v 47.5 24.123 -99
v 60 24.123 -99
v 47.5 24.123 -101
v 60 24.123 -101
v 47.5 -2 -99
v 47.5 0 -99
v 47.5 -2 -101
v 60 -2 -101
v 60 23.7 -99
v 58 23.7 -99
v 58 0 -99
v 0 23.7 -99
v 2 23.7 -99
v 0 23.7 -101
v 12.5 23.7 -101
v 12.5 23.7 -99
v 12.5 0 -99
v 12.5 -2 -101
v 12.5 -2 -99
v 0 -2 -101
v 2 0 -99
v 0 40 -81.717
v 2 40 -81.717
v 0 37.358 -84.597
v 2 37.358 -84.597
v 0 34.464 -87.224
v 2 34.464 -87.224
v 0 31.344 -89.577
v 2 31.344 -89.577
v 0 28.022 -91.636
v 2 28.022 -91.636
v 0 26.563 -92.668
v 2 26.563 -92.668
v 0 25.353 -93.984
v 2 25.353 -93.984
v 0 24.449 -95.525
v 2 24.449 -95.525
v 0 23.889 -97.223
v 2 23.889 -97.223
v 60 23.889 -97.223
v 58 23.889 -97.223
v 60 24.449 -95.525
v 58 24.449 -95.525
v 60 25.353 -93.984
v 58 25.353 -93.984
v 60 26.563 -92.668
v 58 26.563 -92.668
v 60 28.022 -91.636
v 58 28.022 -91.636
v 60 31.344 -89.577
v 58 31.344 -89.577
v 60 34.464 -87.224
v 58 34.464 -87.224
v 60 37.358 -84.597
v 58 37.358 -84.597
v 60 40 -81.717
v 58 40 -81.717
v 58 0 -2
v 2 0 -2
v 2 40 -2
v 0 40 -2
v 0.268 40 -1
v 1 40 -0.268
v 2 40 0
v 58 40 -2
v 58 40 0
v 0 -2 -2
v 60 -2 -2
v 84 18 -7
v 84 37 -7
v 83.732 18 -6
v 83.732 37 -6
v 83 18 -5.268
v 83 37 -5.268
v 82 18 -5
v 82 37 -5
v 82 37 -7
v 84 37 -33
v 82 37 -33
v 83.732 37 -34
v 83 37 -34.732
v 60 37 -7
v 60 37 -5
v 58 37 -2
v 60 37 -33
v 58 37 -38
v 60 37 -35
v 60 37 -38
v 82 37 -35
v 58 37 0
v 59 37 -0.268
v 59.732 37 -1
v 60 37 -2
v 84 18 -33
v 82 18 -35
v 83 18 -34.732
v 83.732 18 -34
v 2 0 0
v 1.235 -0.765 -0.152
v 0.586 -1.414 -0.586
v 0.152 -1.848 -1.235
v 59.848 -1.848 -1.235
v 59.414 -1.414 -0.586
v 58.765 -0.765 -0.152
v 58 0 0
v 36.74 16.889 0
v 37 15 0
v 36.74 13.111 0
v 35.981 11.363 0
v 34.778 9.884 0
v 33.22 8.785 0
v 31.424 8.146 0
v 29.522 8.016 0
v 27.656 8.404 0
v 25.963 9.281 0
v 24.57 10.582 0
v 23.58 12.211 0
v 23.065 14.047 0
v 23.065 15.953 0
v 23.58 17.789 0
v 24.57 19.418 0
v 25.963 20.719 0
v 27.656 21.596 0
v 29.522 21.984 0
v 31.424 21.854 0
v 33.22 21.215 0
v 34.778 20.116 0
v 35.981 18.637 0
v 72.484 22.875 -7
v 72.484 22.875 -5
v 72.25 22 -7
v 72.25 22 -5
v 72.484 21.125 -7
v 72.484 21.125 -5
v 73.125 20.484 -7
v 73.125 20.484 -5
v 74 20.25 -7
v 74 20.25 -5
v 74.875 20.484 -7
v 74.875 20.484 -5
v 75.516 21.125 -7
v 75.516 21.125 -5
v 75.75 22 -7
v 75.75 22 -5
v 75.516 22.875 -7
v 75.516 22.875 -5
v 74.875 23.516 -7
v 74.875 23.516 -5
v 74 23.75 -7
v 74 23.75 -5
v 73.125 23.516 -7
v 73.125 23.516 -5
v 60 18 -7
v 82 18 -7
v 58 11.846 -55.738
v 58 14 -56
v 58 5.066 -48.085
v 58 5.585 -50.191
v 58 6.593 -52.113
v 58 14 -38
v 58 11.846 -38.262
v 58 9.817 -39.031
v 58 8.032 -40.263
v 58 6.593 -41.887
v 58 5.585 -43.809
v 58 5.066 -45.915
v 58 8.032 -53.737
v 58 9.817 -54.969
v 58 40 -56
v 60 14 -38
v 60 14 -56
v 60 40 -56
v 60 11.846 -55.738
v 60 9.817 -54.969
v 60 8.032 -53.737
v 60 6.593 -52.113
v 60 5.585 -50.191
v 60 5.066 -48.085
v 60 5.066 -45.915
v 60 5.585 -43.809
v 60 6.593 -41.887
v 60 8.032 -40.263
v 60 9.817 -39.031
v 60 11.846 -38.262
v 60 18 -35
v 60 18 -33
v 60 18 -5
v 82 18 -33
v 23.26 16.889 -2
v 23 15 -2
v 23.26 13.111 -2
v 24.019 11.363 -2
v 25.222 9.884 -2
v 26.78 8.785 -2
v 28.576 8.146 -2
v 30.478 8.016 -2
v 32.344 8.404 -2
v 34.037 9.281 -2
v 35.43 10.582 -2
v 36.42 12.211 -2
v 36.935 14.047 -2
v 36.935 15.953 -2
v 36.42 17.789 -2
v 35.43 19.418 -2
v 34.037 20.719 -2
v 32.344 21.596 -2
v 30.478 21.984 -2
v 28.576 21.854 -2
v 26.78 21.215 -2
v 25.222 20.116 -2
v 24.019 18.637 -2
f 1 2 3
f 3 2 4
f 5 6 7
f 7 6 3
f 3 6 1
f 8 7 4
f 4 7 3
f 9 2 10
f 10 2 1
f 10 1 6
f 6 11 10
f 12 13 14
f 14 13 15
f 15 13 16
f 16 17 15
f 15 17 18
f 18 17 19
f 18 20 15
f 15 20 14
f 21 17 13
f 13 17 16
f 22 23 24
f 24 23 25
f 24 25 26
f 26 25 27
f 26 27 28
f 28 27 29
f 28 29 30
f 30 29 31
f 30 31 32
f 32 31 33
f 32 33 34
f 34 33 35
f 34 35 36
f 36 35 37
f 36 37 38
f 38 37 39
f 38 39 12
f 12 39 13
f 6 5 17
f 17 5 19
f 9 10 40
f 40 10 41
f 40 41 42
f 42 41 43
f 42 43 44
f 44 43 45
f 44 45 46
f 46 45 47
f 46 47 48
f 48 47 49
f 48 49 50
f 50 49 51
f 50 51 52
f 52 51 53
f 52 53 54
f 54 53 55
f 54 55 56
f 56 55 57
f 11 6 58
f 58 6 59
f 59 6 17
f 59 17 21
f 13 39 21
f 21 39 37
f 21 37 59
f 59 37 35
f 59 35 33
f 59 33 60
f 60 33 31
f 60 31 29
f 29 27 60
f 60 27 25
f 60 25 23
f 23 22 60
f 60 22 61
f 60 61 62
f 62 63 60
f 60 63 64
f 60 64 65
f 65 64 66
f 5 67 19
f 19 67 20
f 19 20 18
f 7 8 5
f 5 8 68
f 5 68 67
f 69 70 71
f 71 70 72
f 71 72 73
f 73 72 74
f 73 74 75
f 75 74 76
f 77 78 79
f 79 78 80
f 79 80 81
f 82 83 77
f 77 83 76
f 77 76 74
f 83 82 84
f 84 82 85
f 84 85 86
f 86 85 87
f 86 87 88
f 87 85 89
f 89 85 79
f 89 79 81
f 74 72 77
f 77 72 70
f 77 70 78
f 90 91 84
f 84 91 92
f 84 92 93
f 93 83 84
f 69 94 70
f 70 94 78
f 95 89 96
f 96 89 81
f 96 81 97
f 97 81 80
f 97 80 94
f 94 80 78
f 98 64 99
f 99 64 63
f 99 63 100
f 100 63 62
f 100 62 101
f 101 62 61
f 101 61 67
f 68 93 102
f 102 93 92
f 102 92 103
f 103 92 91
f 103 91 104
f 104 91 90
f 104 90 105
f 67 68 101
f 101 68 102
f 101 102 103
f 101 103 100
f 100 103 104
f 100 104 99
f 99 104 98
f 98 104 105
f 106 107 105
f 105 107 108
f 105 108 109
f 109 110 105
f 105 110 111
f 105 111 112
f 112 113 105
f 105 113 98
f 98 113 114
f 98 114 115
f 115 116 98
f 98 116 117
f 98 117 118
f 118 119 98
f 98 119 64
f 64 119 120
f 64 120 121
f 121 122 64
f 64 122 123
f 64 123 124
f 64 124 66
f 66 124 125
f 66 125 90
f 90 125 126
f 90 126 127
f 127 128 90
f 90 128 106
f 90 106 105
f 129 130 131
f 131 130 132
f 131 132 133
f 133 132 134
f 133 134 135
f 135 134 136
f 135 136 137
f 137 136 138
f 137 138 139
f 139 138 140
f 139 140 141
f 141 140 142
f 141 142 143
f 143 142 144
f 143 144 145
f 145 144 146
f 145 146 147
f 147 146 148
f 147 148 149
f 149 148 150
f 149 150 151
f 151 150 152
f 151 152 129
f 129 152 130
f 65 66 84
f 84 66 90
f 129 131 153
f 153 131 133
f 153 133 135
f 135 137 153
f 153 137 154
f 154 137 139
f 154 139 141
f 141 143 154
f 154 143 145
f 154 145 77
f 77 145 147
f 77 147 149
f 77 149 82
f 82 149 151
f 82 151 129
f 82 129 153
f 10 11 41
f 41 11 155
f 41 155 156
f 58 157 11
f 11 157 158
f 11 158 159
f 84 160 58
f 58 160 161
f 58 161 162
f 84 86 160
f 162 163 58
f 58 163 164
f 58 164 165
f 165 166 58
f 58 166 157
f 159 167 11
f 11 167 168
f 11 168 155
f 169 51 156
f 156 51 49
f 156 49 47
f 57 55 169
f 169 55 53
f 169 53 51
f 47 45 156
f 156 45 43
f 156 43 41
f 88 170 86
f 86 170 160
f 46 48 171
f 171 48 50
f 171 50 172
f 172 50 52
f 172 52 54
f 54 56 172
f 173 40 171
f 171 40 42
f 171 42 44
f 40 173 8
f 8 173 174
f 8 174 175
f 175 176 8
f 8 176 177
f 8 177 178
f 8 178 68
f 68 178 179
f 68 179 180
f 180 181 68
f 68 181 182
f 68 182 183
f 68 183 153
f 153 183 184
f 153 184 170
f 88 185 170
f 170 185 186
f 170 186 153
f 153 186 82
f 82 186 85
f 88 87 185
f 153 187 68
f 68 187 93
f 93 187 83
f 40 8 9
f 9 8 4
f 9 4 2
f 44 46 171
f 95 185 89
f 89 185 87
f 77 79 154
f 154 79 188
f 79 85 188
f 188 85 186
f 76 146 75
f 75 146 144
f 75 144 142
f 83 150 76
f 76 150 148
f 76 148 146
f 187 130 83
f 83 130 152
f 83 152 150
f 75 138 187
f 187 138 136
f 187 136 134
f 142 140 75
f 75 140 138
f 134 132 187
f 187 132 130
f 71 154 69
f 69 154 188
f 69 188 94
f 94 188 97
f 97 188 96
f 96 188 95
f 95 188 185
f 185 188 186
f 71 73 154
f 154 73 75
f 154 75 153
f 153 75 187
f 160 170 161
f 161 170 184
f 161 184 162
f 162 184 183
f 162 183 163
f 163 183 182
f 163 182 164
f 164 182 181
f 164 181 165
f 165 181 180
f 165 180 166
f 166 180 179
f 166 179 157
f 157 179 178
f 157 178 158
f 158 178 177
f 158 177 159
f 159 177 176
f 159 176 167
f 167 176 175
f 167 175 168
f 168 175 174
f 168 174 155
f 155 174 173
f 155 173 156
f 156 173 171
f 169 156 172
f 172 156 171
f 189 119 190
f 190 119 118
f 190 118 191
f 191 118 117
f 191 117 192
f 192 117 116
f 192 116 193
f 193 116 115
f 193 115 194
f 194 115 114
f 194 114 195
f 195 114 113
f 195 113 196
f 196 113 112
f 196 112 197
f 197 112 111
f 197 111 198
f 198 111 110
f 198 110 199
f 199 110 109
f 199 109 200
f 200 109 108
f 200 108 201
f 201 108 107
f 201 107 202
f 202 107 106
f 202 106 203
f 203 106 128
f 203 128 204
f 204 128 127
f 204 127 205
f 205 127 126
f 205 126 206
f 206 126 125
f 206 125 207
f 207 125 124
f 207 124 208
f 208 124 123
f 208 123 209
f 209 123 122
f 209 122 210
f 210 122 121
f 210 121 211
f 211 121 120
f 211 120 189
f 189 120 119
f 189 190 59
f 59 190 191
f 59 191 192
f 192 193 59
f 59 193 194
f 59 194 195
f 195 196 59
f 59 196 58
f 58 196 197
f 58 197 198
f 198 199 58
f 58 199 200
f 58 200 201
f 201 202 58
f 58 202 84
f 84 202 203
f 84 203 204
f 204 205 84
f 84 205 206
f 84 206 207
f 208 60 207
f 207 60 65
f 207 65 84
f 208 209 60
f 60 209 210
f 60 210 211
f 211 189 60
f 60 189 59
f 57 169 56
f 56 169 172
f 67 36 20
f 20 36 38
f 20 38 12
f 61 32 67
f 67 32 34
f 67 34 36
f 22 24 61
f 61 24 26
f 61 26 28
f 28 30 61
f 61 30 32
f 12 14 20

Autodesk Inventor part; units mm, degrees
ref_plane "YZ Plane" through (0, 0, 0) normal (1, 0, 0) x (0, 1, 0)
ref_plane "XZ Plane" through (0, 0, 0) normal (0, 1, 0) x (-1, 0, 0)
sketch "Sketch1" plane through (0, 0, 0) normal (0, 1, 0) x (-1, 0, 0)
  line L0 (-60, -124) -> (0, -124)
  line L1 (0, -124) -> (0, 0)
  line L2 (-58, -33) -> (-58, -122)
  line L3 (-58, -122) -> (-40, -122)
  line L4 (-40, -122) -> (-40, -124)
  line L5 (-2, -2) -> (-2, -122)
  line L6 (-2, -122) -> (-20, -122)
  line L7 (-20, -122) -> (-20, -124)
  line L8 (-60, -35) -> (-60, -124)
  line L9 (-30, -124) -> (-30, 0) construction
  line L10 (-60, -124) -> (-60, 0)
  line L11 (-58, -124) -> (-58, -2)
  line L12 (-2, -2) -> (-58, -2)
  line L13 (-60, 0) -> (0, 0)
  line L14 (-84, -5) -> (-84, -35)
  line L15 (-84, -35) -> (-58, -35)
  line L16 (-58, -35) -> (-58, 0)
  line L17 (-82, -7) -> (-82, -33)
  line L18 (-82, -33) -> (-58, -33)
  line L19 (-58, -33) -> (-58, -2)
  line L20 (-82, -7) -> (-60, -7)
  line L21 (-84, -5) -> (-60, -5)
  point P0 (-57.4156, -121.9986)
  point P1 (-58, -122)
  point P2 (-60, -35)
  point P3 (-58, -38)
  point P4 (-58, -33)
  point P5 (-60, -33)
  point P6 (-60, -35)
  point P7 (-58, -33)
  point P8 (-58, -35)
  point P9 (-58, -35)
  dimension "d0" = 60
  dimension "d5" = 2
  dimension "d6" = 20
  dimension "d38" = 2
  dimension "d39" = 60
  dimension "d46" = 2
  dimension "d47" = 2
  dimension "d48" = 2
  dimension "d50" = 30
  dimension "d51" = 2
  dimension "d64" = 2
  dimension "d66" = 26
extrude "Extrusion1" add sketch "Sketch1" against normal blind 2 contours L8 L15 L2 L11 L0 | L11 L3 L4 L0 | L10 L18 L2 L15 | L4 L3 L2 L11 L12 L5 L6 L7 L0 | L10 L13 L16 L11 L18 | L7 L6 L5 L12 L16 L13 L1 L0
extrude "Extrusion2" add sketch "Sketch1" along normal blind 40 contours L8 L15 L2 L11 L0 | L11 L3 L4 L0 | L10 L18 L2 L15 | L10 L13 L16 L11 L18 | L7 L6 L5 L12 L16 L13 L1 L0
sketch "Sketch2" plane through (0, -2, 0) normal (0, 0, 1) x (1, 0, 0)
  circle A0 centre (30, 17) radius 7
  line L0 (0, 42) -> (60, 42)
  line L1 (60, 0) -> (60, 42) projected
  point P0 (0, 2)
  point P1 (0, 42)
  point P2 (30, 42)
  dimension "d11" = 25
  dimension "d12" = 14
  dimension "d65" = 30
extrude "Extrusion3" cut sketch "Sketch2" against normal up to next
sketch "Sketch3" plane through (60, -2, 5.4121) normal (1, 0, 0) x (0, 0, -1)
  arc A0 (43.4121, 16) -> (61.4121, 16) centre (52.4121, 16) ccw
  line L0 (5.4121, 1.9762) -> (5.4121, 47)
  line L1 (61.4121, 16) -> (61.4121, 61)
  line L2 (61.4121, 61) -> (43.4121, 61)
  line L3 (43.4121, 61) -> (43.4121, 16)
  line L4 (5.4121, 47) -> (129.4107, 47) construction
  point P0 (5.4121, 2)
  point P1 (129.4107, 47)
  point P2 (5.4121, 0)
  dimension "d16" = 47
  dimension "d17" = 18
  dimension "d18" = 31
  dimension "d45" = 45
extrude "Extrusion4" cut sketch "Sketch3" against normal blind 2
ref_plane "Work Plane1" through (0, 18, 0) normal (0, -1, 0) x (1, 0, 0)
extrude "Extrusion7" add sketch "Sketch1" along normal up to surface (22 mm away) from surface at 18 contours L15 L14 L21 L10 L20 L17 L18
sketch "Sketch5" plane through (84, 18, -5) normal (1, 0, 0) x (0, 0, -1)
  line L0 (119, 22) -> (-5, 22) projected
  line L1 (33, 22) -> (33, -4) projected
  line L2 (-5, 22) -> (33, 22)
  line L3 (33, 22) -> (33, 19)
  line L4 (33, 19) -> (-5, 19)
  line L5 (-5, 19) -> (-5, 22)
  point P0 (-5, -18)
  dimension "d55" = 3
extrude "Extrusion8" cut sketch "Sketch5" against normal up to surface (26 mm away)
sketch "Sketch6" plane through (60, 18, -5) normal (0, 0, 1) x (1, 0, 0)
  circle A0 centre (14, 4) radius 1.75
  line L0 (24, 0) -> (24, 19) projected
  line L1 (0, 0) -> (24, 0) projected
  point P0 (-60, -18)
  dimension "d58" = 3.5
  dimension "d59" = 10
  dimension "d60" = 4
extrude "Extrusion9" cut sketch "Sketch6" against normal blind 10
fillet "Fillet1" radius 2 5 edges at (30, -2, 0) (0, 19, 0) (60, 17.5, 0) (84, 27.5, -35) (84, 27.5, -5)
sketch "Sketch7" plane through (0, 0, -122) normal (-1, 0, 0) x (0, 0, 1)
  line L0 (120, -2) -> (0, -2) projected
  line L1 (23, -2) -> (23, 23.6999)
  arc A0 (23, 23.6999) -> (30.364, 28.0218) centre (23, 32.1346) ccw
  arc A1 (67.8122, 50) -> (30.364, 28.0218) centre (67.8122, 7.1072) ccw
  line L2 (-2, 40) -> (120, 40) projected
  line L3 (-2, 50) -> (-2, 0) projected
  line L4 (67.8122, 50) -> (-2, 50)
  line L5 (-2, 50) -> (-2, -2)
  line L6 (-2, -2) -> (23, -2)
  point P0 (122, 0)
  point P1 (0, 50)
  point P2 (120, 40)
  point P3 (40.283, 40)
  point P4 (67.8122, 50)
  dimension "d67" = 25
extrude "Extrusion10" cut sketch "Sketch7" against normal through all
sketch "Sketch8" plane through (0, 0, -99) normal (0, 0, -1) x (-1, 0, 0)
  line L0 (0, 23.6999) -> (0, -2) projected
  line L1 (0, -2) -> (-12.5, -2)
  line L2 (-12.5, -2) -> (-12.5, 23.6999)
  line L3 (-12.5, 23.6999) -> (0, 23.6999)
  line L4 (0, 23.6999) -> (0, -2)
  line L5 (-60, -2) -> (-60, 23.6999) projected
  line L6 (-60, -2) -> (-47.5, -2)
  line L7 (-47.5, -2) -> (-47.5, 24.1231)
  line L8 (-47.5, 24.1231) -> (-60, 24.1231)
  line L9 (-60, 24.1231) -> (-60, -2)
  point P0 (0, 0)
  point P1 (-60, 23.6999)
  dimension "d70" = 35
extrude "Extrusion11" add sketch "Sketch8" along normal blind 2
properties part number "tension_sensor_cover" material "ABS Plastic"
